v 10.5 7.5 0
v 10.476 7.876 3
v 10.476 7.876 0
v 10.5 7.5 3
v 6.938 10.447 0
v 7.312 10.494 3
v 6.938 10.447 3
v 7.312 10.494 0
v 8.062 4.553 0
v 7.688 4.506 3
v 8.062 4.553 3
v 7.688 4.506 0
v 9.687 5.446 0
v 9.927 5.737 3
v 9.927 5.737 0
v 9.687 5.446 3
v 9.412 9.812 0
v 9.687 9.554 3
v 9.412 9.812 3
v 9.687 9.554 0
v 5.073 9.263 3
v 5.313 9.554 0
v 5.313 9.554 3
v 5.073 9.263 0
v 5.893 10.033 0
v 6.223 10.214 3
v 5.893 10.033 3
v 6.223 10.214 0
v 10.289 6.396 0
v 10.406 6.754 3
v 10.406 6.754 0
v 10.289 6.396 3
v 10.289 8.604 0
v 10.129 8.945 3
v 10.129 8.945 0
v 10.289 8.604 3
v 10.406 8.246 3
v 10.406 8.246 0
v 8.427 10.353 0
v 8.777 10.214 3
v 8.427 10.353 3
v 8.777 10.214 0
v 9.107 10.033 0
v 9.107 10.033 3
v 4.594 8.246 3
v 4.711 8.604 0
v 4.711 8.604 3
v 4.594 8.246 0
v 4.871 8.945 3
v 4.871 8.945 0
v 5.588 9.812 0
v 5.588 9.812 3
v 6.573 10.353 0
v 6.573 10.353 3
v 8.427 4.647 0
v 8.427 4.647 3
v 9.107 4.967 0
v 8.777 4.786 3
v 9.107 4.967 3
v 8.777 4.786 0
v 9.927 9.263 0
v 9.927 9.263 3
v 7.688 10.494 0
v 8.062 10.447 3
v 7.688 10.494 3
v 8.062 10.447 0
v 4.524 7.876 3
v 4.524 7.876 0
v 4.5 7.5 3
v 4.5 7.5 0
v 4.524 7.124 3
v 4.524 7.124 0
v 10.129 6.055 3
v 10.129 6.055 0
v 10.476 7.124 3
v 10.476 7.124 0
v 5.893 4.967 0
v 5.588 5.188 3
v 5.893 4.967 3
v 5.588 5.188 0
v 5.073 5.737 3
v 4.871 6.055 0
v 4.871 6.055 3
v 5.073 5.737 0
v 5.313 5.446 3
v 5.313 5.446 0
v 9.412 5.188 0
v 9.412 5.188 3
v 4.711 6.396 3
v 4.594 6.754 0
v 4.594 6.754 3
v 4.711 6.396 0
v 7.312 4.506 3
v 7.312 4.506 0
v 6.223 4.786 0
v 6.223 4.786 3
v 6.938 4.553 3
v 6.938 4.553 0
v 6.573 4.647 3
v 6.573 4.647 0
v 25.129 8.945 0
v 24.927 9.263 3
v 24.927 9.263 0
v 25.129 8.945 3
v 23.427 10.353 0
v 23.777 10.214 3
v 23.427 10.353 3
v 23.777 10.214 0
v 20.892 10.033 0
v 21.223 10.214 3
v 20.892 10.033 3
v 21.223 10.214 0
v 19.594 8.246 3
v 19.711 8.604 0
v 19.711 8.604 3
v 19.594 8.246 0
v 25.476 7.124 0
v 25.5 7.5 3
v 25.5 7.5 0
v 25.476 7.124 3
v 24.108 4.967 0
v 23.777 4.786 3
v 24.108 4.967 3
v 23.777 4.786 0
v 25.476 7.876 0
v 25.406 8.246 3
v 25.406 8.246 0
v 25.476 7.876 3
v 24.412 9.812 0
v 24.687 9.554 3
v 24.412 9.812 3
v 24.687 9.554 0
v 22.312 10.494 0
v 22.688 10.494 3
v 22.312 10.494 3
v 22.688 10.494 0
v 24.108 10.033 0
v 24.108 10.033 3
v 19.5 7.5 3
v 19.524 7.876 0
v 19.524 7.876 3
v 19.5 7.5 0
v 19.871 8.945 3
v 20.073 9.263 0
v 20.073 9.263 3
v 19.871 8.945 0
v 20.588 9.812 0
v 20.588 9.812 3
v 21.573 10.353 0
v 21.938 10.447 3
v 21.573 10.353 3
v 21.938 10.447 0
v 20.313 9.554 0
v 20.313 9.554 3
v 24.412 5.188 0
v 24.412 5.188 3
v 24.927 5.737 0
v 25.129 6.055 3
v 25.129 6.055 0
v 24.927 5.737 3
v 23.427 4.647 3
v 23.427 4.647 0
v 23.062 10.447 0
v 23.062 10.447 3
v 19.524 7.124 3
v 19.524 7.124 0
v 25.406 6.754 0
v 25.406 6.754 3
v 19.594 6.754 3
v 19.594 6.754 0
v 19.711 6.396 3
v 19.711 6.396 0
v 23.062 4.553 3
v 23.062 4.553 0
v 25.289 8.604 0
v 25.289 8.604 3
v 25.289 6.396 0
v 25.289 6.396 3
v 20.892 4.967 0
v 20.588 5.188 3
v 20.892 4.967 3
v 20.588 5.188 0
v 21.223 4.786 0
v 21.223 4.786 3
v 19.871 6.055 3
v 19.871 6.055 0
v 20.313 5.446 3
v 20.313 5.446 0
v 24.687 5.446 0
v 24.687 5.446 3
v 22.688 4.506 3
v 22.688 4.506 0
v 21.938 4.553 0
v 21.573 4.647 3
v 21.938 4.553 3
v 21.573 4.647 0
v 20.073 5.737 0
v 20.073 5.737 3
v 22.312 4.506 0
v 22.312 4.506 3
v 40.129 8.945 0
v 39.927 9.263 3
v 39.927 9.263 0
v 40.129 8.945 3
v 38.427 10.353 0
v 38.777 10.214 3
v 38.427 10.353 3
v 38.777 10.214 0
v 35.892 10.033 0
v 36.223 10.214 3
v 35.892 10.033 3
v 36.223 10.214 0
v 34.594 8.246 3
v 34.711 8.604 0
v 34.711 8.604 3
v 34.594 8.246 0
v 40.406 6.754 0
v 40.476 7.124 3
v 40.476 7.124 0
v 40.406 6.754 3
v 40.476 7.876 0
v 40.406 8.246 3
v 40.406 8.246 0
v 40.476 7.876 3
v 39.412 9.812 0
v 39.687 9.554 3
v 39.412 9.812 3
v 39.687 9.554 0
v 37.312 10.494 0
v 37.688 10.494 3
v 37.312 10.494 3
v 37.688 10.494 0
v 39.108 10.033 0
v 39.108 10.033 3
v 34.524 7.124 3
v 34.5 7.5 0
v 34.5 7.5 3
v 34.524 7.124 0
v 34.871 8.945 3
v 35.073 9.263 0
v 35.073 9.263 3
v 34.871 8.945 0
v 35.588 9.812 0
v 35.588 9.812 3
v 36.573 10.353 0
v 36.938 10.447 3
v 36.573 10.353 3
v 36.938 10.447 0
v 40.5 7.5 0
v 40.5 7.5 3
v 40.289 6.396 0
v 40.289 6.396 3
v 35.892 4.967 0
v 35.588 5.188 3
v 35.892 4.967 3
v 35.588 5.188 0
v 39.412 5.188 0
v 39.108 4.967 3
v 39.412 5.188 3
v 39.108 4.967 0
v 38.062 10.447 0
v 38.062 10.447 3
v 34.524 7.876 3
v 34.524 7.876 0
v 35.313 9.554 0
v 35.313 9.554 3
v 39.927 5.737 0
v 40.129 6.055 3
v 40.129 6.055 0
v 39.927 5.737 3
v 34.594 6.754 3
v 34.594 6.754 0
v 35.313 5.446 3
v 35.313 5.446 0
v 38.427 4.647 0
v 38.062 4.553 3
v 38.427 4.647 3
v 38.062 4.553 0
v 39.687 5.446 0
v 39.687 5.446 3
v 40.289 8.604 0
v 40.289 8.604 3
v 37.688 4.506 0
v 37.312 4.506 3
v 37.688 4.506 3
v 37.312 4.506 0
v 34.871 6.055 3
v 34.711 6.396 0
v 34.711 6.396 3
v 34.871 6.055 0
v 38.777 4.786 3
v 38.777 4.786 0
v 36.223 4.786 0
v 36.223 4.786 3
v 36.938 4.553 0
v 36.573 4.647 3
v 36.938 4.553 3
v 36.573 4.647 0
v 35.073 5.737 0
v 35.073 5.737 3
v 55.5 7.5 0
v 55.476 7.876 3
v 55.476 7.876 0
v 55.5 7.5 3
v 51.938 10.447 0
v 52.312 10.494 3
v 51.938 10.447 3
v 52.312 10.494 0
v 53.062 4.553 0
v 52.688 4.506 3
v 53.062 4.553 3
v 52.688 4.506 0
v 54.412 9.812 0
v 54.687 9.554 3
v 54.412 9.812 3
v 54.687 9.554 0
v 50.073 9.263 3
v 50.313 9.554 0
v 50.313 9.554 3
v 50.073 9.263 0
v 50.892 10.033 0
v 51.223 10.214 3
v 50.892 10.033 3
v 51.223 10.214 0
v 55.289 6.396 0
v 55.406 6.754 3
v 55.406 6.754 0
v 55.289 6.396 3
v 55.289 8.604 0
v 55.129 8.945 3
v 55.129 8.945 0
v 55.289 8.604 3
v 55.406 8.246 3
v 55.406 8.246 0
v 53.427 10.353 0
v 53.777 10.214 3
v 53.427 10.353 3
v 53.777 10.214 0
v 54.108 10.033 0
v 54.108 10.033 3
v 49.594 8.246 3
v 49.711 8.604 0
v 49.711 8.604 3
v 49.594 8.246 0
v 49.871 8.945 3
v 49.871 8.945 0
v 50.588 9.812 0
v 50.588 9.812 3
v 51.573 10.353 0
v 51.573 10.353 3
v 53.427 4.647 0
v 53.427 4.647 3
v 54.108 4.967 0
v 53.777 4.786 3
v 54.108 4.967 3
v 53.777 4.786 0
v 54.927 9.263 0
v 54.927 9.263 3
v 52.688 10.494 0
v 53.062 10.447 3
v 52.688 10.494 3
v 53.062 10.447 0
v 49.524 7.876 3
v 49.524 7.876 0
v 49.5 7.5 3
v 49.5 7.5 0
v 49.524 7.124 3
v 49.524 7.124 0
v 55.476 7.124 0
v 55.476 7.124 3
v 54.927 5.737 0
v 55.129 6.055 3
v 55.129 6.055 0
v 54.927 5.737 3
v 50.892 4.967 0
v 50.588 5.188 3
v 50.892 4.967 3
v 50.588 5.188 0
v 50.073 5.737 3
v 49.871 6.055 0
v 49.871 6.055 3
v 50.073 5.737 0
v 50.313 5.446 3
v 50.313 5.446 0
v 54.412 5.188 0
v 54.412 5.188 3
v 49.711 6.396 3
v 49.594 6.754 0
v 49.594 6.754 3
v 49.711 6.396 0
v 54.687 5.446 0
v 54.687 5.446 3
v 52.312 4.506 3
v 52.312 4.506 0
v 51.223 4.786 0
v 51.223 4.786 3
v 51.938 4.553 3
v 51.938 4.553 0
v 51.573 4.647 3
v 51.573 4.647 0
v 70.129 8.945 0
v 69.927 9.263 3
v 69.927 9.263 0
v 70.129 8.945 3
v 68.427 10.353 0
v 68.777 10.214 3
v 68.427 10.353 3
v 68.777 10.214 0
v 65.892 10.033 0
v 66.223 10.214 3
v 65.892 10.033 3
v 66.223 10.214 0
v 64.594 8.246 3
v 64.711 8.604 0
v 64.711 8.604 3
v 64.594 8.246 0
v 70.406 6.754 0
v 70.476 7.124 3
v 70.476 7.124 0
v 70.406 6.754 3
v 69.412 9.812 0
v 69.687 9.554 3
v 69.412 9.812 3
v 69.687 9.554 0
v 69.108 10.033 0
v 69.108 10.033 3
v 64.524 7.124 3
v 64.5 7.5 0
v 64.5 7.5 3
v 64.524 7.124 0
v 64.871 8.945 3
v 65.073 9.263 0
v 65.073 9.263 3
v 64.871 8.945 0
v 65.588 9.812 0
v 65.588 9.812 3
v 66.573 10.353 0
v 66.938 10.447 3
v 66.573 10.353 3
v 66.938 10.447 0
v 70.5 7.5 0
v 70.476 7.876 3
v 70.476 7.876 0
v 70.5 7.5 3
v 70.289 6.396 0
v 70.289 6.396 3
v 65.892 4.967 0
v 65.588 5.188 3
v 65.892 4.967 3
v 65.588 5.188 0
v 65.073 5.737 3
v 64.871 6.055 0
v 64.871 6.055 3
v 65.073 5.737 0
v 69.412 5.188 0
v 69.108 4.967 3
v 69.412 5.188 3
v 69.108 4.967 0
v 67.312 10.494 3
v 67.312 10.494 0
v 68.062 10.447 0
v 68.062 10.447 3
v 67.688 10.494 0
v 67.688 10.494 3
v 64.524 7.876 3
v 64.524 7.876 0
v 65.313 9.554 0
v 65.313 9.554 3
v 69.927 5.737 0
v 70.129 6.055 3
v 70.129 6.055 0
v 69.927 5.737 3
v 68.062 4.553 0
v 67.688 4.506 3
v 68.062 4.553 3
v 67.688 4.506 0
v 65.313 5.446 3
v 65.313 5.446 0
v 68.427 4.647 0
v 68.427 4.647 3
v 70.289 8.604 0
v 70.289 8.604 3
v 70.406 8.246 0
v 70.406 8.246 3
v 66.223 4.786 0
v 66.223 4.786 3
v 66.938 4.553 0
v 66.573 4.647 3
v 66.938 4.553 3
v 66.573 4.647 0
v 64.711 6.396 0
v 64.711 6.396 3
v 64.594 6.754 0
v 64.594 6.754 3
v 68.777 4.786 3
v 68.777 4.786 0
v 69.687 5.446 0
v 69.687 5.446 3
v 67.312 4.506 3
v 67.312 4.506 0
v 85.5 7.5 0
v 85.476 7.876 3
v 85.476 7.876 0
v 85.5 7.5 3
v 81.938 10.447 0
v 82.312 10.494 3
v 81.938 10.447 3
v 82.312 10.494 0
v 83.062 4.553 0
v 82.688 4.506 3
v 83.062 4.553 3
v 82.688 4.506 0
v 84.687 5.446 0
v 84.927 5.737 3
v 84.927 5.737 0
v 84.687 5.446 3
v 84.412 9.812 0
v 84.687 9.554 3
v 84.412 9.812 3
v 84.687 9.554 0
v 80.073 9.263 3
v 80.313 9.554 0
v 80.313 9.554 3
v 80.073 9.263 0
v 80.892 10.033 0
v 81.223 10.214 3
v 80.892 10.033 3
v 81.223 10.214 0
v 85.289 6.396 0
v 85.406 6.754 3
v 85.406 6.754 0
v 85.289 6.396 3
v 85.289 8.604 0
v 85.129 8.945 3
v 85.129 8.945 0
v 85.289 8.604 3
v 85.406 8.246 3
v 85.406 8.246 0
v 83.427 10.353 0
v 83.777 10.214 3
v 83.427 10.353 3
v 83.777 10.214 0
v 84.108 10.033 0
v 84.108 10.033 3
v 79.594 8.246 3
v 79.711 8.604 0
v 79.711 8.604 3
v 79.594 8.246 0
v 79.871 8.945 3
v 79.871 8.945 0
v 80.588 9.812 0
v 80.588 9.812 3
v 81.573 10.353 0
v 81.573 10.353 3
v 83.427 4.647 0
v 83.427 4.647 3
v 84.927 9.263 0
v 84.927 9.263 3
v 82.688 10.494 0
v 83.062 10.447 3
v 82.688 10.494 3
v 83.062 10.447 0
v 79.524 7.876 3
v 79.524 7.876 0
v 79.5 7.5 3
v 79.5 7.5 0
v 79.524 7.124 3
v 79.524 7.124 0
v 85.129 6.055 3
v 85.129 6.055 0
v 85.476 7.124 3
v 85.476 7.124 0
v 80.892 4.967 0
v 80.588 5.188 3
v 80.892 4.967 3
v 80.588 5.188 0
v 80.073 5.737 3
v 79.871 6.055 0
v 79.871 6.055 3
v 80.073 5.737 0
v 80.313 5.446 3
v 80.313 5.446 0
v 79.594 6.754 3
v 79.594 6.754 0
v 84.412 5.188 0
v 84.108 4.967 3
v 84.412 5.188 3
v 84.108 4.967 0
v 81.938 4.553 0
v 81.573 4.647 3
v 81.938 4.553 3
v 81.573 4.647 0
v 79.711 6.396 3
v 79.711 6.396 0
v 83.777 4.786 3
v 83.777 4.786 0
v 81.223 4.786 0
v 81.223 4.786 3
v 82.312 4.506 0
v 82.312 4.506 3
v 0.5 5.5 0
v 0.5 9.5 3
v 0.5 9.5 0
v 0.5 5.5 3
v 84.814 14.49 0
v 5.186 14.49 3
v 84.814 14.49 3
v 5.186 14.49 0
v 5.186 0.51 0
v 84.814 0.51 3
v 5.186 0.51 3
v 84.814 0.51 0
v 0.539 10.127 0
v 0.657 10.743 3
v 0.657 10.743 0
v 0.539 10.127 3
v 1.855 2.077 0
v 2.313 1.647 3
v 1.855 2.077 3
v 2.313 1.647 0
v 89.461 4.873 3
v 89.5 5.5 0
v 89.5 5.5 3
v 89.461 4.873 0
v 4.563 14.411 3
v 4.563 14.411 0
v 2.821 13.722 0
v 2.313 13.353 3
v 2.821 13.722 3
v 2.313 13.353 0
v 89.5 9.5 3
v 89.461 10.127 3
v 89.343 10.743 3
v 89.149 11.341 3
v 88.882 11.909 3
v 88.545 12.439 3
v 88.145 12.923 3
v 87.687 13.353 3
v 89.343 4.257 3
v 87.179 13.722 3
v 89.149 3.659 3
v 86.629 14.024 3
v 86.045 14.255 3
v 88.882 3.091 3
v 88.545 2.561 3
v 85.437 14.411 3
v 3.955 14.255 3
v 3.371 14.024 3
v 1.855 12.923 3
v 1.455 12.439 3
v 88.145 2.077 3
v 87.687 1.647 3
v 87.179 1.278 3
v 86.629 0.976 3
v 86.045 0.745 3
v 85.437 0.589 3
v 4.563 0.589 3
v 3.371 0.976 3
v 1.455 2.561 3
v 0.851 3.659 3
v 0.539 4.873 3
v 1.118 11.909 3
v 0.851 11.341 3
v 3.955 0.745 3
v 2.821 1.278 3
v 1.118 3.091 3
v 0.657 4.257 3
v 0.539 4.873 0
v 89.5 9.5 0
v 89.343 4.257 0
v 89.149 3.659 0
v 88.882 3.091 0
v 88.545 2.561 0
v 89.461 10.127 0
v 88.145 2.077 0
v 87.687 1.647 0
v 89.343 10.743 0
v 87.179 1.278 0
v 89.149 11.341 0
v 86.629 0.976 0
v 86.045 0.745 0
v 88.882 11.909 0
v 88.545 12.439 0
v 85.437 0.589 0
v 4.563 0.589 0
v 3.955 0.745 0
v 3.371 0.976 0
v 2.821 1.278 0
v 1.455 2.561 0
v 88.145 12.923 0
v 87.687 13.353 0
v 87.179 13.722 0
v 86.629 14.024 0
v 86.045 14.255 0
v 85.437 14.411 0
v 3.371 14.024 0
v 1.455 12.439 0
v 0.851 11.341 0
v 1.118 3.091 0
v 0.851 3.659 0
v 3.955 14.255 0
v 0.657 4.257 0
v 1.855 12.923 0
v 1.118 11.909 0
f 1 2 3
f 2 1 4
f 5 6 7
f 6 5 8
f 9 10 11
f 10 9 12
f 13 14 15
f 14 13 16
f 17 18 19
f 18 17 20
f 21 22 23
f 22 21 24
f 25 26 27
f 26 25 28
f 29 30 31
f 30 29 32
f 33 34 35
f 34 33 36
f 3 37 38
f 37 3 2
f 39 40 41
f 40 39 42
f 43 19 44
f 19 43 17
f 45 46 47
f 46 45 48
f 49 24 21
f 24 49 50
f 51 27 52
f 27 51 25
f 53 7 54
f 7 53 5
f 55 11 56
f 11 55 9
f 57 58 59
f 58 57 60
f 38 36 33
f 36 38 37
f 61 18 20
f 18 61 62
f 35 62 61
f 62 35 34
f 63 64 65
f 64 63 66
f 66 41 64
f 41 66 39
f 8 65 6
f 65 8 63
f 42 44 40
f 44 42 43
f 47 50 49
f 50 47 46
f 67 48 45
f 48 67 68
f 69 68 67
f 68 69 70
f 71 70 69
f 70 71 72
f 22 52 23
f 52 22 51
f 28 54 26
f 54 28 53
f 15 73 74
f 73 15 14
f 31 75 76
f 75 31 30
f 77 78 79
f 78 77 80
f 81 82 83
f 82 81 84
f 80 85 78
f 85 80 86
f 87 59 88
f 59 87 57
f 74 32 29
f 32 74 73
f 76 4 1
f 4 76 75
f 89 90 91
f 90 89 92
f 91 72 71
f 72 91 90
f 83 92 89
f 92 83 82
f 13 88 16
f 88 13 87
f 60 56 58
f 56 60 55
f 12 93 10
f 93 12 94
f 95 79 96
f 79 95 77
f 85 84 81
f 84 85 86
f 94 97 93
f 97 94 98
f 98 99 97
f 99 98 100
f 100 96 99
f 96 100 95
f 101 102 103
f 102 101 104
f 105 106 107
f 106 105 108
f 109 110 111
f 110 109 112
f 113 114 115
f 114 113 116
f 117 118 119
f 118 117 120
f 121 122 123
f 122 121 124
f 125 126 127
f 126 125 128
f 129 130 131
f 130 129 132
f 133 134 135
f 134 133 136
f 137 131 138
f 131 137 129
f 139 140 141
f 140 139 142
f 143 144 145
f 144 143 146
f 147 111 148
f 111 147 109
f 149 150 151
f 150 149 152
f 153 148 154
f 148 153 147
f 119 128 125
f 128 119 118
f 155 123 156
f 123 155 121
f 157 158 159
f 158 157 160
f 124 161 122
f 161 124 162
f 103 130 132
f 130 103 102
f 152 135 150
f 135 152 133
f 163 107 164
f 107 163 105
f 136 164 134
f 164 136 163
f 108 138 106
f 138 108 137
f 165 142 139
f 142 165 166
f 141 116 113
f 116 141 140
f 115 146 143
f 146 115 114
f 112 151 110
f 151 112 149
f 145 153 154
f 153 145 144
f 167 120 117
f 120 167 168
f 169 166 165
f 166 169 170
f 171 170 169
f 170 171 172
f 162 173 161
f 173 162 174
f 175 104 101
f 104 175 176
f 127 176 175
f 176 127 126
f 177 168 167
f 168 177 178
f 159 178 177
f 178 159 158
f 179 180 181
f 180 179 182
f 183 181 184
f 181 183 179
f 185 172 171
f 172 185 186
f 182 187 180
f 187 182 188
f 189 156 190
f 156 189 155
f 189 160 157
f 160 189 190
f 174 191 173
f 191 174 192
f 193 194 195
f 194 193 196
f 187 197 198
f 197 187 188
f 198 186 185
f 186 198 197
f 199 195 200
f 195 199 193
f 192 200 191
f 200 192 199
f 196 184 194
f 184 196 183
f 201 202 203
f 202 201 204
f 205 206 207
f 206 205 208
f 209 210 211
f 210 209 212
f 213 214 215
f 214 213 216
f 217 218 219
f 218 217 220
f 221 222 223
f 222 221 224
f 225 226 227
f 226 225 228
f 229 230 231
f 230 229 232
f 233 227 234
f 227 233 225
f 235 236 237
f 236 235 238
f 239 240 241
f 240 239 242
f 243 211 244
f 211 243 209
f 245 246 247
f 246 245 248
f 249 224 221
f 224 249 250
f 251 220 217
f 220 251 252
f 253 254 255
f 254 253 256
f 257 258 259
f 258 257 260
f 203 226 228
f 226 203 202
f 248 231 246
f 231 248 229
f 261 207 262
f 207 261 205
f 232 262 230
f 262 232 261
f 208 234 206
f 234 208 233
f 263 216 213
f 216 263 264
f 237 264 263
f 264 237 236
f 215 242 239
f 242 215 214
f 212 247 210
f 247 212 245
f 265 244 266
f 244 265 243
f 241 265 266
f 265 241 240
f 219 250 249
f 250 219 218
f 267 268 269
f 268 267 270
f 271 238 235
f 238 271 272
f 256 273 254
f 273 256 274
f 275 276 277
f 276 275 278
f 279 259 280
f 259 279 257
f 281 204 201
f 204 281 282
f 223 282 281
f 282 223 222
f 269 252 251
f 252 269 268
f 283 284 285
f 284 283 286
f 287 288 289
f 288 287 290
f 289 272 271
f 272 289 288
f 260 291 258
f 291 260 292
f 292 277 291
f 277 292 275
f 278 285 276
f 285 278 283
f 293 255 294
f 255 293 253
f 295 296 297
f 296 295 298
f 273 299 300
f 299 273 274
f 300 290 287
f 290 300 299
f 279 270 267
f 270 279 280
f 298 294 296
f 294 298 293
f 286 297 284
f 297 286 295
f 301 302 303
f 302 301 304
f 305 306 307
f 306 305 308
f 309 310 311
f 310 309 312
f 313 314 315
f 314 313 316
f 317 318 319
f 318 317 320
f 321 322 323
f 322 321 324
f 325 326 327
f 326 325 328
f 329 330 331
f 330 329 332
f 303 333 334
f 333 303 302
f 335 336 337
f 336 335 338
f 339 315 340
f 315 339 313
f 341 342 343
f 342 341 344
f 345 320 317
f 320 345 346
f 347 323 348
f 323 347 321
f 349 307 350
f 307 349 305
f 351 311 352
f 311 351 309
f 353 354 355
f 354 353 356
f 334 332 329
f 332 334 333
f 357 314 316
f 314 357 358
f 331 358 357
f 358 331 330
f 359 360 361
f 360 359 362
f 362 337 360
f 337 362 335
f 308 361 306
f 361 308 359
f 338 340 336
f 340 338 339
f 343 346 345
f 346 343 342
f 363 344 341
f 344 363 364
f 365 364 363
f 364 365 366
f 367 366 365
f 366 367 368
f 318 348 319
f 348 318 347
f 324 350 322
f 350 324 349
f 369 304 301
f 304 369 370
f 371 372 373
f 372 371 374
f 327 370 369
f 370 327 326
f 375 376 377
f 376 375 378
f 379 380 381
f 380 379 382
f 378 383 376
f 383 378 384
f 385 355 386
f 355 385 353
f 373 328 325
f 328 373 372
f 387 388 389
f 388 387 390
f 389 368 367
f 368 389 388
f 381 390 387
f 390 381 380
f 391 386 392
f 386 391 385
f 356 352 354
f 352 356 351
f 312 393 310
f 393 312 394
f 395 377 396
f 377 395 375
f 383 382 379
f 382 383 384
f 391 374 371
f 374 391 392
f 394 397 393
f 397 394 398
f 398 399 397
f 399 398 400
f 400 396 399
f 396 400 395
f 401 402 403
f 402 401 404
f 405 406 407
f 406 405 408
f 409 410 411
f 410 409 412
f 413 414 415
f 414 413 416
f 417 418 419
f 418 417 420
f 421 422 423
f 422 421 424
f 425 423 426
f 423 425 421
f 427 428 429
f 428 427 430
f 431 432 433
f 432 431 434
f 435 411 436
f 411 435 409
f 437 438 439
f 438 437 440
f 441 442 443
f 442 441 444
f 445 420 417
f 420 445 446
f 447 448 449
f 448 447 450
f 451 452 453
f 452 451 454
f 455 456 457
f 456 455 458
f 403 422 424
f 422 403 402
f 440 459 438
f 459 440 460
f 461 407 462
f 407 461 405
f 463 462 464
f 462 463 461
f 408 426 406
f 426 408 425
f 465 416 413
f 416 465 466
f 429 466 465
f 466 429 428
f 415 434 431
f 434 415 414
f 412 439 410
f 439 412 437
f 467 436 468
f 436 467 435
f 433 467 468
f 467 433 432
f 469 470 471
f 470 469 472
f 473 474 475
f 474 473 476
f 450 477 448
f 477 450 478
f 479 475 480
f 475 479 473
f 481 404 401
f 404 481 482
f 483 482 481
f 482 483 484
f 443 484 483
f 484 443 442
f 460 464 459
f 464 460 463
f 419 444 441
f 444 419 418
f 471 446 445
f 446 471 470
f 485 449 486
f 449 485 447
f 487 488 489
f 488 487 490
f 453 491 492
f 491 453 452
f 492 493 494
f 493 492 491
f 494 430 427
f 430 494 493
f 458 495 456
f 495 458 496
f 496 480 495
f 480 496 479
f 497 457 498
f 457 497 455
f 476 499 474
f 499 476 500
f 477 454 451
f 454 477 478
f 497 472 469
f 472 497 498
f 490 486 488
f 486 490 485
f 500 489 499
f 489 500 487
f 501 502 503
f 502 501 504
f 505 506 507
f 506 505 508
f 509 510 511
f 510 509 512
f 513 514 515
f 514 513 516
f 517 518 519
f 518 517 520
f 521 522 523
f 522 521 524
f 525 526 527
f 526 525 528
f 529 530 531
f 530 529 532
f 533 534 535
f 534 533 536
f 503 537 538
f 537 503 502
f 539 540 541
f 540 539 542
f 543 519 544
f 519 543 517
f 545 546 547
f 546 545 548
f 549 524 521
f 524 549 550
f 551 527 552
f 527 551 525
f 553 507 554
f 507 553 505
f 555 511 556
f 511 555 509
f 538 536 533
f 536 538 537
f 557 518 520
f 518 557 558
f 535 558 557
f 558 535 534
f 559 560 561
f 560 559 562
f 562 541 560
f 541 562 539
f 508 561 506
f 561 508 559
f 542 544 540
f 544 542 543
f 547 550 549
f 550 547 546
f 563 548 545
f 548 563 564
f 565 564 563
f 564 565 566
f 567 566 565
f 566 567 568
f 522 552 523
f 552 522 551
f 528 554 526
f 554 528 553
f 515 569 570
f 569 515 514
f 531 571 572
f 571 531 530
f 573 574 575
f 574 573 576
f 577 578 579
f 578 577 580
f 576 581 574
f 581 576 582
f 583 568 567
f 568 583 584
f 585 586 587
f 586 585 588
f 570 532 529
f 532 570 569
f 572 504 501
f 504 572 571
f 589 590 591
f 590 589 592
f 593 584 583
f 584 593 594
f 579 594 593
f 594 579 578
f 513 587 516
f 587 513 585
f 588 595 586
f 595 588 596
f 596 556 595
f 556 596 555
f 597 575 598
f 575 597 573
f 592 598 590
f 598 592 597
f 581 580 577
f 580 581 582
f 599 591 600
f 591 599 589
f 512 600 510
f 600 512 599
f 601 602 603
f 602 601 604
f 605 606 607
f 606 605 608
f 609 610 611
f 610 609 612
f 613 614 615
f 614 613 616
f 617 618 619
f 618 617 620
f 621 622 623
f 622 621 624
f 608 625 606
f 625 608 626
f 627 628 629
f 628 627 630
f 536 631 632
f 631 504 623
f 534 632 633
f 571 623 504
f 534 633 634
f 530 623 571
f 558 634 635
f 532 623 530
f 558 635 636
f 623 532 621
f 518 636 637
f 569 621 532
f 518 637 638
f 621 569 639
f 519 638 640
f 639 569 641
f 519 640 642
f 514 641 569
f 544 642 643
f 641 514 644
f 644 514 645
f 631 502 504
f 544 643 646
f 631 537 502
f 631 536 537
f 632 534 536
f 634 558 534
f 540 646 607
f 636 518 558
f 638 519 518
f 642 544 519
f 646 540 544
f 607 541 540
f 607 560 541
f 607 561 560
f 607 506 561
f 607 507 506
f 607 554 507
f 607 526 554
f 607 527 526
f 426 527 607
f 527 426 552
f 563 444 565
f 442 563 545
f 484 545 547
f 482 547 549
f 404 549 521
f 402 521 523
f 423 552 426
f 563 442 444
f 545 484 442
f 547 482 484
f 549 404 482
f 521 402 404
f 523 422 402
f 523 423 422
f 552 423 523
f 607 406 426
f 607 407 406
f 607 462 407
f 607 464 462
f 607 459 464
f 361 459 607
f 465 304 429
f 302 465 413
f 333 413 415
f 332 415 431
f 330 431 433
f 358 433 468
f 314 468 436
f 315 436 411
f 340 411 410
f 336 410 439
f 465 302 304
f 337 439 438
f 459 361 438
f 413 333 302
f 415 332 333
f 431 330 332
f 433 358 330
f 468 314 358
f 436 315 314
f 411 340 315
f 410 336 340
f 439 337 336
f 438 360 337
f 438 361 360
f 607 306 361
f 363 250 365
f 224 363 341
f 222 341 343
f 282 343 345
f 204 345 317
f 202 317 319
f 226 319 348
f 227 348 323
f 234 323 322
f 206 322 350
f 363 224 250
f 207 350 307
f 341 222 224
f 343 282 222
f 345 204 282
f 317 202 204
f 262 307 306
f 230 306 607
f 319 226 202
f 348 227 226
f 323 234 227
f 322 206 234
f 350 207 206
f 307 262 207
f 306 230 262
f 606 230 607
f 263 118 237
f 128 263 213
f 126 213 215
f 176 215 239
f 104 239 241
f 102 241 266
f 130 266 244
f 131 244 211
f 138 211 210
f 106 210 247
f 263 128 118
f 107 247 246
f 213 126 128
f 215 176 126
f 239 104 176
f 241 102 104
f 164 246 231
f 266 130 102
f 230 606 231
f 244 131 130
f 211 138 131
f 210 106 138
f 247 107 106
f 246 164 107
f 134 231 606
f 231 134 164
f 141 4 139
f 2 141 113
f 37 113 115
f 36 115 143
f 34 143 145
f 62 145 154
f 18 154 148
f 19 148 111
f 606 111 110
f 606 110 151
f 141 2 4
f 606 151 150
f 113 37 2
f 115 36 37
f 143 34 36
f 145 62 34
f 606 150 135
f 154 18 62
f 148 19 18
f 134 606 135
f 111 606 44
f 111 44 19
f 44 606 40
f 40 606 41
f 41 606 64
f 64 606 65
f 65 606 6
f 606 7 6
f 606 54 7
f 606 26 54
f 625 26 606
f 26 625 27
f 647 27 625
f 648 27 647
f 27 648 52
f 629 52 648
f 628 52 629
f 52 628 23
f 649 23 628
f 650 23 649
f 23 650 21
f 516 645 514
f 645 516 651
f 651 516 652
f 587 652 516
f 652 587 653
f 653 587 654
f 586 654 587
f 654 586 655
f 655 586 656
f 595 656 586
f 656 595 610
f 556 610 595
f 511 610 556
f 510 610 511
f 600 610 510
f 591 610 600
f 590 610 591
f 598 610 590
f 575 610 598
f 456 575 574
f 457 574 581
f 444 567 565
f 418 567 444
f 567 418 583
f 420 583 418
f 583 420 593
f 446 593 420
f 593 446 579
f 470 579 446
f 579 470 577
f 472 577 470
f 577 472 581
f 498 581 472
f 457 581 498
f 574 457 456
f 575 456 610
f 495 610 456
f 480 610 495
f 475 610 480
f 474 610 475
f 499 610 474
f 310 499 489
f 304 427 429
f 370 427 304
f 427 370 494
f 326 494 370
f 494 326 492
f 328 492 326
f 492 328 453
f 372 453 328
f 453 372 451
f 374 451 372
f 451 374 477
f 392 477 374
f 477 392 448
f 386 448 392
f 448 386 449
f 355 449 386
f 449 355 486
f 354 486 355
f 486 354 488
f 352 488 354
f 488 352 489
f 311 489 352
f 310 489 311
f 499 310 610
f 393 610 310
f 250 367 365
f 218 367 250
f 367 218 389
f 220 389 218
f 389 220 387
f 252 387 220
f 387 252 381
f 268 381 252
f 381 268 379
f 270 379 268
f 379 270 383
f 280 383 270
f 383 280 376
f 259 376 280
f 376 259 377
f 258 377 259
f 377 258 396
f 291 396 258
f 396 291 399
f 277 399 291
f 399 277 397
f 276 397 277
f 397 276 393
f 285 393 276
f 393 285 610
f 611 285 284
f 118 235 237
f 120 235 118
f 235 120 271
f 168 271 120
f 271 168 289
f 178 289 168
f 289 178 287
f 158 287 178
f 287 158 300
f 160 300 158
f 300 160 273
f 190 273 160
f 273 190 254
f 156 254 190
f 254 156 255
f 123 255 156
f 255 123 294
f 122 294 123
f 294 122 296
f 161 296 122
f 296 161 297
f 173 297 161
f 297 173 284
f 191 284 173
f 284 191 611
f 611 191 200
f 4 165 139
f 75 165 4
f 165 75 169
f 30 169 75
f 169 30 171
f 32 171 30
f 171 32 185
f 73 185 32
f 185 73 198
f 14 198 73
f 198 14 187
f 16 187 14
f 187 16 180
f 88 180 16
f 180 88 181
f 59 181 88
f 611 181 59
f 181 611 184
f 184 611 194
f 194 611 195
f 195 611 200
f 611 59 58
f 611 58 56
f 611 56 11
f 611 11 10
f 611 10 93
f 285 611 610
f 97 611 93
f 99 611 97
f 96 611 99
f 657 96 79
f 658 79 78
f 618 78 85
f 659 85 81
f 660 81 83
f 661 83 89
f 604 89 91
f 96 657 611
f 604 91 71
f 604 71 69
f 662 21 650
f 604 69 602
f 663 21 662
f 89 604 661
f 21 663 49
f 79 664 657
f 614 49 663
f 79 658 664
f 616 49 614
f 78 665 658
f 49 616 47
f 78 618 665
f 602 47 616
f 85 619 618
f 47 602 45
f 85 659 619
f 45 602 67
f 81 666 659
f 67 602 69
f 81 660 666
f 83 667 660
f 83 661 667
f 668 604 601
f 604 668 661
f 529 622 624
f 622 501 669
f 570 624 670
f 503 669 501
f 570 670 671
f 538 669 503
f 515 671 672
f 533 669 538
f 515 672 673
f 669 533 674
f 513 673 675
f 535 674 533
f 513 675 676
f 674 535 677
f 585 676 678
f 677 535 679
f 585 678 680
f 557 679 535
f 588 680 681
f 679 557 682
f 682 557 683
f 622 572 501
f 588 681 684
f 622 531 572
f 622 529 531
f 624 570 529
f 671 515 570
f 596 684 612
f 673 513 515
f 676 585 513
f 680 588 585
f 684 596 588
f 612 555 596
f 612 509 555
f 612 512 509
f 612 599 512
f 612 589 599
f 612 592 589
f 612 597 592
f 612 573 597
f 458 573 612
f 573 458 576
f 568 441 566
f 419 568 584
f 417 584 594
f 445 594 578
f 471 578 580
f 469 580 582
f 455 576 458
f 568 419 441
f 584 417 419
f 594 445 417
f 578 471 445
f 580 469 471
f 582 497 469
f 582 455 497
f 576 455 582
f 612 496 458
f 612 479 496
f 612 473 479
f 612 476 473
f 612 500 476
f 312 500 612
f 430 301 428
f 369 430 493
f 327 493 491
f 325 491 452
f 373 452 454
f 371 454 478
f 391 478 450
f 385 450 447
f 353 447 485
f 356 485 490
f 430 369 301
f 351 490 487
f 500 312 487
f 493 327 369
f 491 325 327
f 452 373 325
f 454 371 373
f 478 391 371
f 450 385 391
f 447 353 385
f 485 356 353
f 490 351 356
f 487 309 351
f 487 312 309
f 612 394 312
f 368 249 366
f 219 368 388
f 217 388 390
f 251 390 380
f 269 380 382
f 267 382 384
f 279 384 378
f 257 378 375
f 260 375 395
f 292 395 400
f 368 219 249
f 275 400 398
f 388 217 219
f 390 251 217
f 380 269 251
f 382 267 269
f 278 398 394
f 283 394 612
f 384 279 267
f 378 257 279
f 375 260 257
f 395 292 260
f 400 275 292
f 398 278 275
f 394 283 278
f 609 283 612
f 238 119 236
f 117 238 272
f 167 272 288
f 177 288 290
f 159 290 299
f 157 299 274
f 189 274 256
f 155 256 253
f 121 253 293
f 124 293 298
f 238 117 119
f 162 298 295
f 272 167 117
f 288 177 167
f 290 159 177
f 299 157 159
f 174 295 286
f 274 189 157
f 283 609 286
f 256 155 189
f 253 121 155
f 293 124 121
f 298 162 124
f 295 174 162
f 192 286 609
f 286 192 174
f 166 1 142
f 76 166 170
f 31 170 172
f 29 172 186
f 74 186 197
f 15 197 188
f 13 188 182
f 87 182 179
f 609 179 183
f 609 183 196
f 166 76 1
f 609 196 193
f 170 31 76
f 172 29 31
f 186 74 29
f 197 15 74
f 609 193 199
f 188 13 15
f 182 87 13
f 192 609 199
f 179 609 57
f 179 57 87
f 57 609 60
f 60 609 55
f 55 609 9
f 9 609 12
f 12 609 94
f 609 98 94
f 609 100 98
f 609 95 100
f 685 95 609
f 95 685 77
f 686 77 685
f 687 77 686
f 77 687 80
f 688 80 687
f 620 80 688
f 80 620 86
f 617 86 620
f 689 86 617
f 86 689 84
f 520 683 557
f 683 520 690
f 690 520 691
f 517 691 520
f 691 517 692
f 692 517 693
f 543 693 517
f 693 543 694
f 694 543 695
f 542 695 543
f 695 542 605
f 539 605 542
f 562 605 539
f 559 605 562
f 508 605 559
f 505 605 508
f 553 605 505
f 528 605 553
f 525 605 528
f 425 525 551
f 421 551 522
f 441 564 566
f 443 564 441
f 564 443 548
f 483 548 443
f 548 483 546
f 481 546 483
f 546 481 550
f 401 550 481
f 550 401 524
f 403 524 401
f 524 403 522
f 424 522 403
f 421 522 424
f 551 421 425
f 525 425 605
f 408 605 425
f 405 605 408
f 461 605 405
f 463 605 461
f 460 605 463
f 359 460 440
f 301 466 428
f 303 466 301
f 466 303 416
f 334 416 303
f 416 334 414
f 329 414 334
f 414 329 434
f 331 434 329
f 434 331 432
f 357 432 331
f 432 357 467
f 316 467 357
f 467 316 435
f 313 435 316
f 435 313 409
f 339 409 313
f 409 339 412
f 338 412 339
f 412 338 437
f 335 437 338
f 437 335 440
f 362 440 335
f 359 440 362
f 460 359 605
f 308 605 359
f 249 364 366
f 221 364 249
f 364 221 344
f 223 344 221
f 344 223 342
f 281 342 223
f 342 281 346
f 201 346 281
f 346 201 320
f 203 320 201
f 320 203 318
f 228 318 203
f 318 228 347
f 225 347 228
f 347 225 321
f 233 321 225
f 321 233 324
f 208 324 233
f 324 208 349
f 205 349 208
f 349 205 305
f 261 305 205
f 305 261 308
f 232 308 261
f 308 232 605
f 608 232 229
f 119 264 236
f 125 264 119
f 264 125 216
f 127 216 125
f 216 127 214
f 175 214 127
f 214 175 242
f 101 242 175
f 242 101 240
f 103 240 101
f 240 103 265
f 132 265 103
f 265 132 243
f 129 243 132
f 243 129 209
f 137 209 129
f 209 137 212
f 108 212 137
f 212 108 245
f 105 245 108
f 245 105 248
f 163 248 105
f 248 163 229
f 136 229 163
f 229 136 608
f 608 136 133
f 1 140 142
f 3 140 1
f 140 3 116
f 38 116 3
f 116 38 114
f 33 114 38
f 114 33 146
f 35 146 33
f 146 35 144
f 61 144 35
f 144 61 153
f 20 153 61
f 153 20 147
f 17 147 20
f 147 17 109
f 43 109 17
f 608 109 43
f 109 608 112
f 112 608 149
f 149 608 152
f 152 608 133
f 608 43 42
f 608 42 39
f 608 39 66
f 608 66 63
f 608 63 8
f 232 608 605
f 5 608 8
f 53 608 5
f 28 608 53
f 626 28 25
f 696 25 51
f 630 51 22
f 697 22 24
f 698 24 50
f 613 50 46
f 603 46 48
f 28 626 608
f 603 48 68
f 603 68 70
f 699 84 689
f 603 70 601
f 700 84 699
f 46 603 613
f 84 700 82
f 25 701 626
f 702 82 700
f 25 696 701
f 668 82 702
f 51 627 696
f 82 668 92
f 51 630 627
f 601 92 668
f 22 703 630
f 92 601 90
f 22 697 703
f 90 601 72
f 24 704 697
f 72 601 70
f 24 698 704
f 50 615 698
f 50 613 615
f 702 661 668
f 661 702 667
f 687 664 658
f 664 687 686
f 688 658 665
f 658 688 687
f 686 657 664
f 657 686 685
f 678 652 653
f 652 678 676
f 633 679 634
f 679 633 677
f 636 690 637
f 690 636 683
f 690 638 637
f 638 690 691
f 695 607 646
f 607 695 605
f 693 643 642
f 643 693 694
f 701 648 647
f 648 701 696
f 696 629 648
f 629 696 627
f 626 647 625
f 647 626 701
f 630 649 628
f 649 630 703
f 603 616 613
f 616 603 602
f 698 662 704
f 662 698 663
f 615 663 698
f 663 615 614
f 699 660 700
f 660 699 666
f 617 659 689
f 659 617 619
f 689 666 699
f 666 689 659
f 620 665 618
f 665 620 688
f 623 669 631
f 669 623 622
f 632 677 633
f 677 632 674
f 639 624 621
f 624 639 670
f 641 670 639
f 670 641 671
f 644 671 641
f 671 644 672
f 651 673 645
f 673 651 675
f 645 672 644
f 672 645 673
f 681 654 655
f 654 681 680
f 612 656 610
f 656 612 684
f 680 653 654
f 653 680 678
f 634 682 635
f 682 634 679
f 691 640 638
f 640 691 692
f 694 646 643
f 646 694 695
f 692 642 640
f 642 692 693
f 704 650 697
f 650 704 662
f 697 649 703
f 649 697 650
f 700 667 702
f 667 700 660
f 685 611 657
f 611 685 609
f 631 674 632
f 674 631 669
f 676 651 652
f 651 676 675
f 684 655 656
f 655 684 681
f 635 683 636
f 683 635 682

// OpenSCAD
// Generated by SolidPython 1.1.3 on 2023-01-30 13:47:54
$fn = 50;


difference() {
	union() {
		translate(v = [45.0000000000, 7.5000000000, 0]) {
			rotate(a = [0, 0, 0]) {
				hull() {
					translate(v = [-39.5000000000, 2.0000000000, 0]) {
						rotate(a = [0, 0, 0]) {
							translate(v = [0, 0, 0]) {
								rotate(a = [0, 0, 0]) {
									cylinder(h = 3, r = 5);
								}
							}
						}
					}
					translate(v = [39.5000000000, 2.0000000000, 0]) {
						rotate(a = [0, 0, 0]) {
							translate(v = [0, 0, 0]) {
								rotate(a = [0, 0, 0]) {
									cylinder(h = 3, r = 5);
								}
							}
						}
					}
					translate(v = [-39.5000000000, -2.0000000000, 0]) {
						rotate(a = [0, 0, 0]) {
							translate(v = [0, 0, 0]) {
								rotate(a = [0, 0, 0]) {
									cylinder(h = 3, r = 5);
								}
							}
						}
					}
					translate(v = [39.5000000000, -2.0000000000, 0]) {
						rotate(a = [0, 0, 0]) {
							translate(v = [0, 0, 0]) {
								rotate(a = [0, 0, 0]) {
									cylinder(h = 3, r = 5);
								}
							}
						}
					}
				}
			}
		}
	}
	union() {
		translate(v = [7.5000000000, 7.5000000000, 0]) {
			rotate(a = [0, 0, 0]) {
				translate(v = [0, 0, -50]) {
					rotate(a = [0, 0, 0]) {
						cylinder(h = 100, r = 3.0000000000);
					}
				}
			}
		}
		translate(v = [22.5000000000, 7.5000000000, 0]) {
			rotate(a = [0, 0, 0]) {
				translate(v = [0, 0, -50]) {
					rotate(a = [0, 0, 0]) {
						cylinder(h = 100, r = 3.0000000000);
					}
				}
			}
		}
		translate(v = [37.5000000000, 7.5000000000, 0]) {
			rotate(a = [0, 0, 0]) {
				translate(v = [0, 0, -50]) {
					rotate(a = [0, 0, 0]) {
						cylinder(h = 100, r = 3.0000000000);
					}
				}
			}
		}
		translate(v = [52.5000000000, 7.5000000000, 0]) {
			rotate(a = [0, 0, 0]) {
				translate(v = [0, 0, -50]) {
					rotate(a = [0, 0, 0]) {
						cylinder(h = 100, r = 3.0000000000);
					}
				}
			}
		}
		translate(v = [67.5000000000, 7.5000000000, 0]) {
			rotate(a = [0, 0, 0]) {
				translate(v = [0, 0, -50]) {
					rotate(a = [0, 0, 0]) {
						cylinder(h = 100, r = 3.0000000000);
					}
				}
			}
		}
		translate(v = [82.5000000000, 7.5000000000, 0]) {
			rotate(a = [0, 0, 0]) {
				translate(v = [0, 0, -50]) {
					rotate(a = [0, 0, 0]) {
						cylinder(h = 100, r = 3.0000000000);
					}
				}
			}
		}
	}
}
/***********************************************
*********      SolidPython code:      **********
************************************************
 
from solid import *
import os
import subprocess

import oomB

import opsc_library_gen

mode = "laser"
#mode = "3d_print"

defined_objects = {}

radius_dict = {}
countersunk_dict = {}


def set_mode(m):
    global mode
    mode = m
    radius_dict['M6'] = 6.5/2
    radius_dict['M3'] = 3.3/2
    if mode == "laser":
        radius_dict['M6'] = 6/2
        radius_dict['M3'] = 3/2

    countersunk_dict['M3'] = {}
    countersunk_dict['M3']['little_rad'] = radius_dict['M3']
    countersunk_dict['M3']['big_rad'] = (5.5+0.6)/2
    if mode == "laser":
        countersunk_dict['M3']['big_rad'] = (4.75+0.6)/2
        countersunk_dict['M3']['little_rad'] = (4.75+0.6)/2

    countersunk_dict['M3']['height'] = 1.7


def opsc_make_object(filename, objects, save_type="none",resolution=50, layers = 1, tilediff = 200, mode="laser"):
    set_mode(mode)
    save_type = save_type.lower()
    os.makedirs(os.path.dirname(filename), exist_ok=True)
    final_object = opsc_get_object(objects)
    # Save the final object to the specified filename    
    scad_render_to_file(final_object, filename, file_header='$fn = %s;' % resolution, include_orig_code=True)
    if mode == "laser":
        filename_laser = filename.replace(".scad","-flat.scad")
        scad_render_to_file(getLaser(final_object, layers=layers, tilediff=tilediff), filename_laser, file_header='$fn = %s;' % resolution, include_orig_code=True)
        if save_type == "all":
            saveToAll(filename_laser)
        elif save_type == "dxf":
            saveToDxf(filename_laser)
    if save_type == "all":
        saveToAll(filename)
    elif save_type == "dxf":
        saveToDxf(filename)


def opsc_get_object(objects):
    # Create the solidpython objects
    positive_objects = [get_opsc_item(obj) for obj in objects if obj['type'] == 'positive']
    negative_objects = [get_opsc_item(obj) for obj in objects if obj['type'] == 'negative']
    # Union the positive objects
    positive_object = union()(*positive_objects)
    # Union the negative objects
    negative_object = union()(*negative_objects)
    # Create the final object by subtracting the negative objects from the positive objects
    return difference()(positive_object, negative_object)

def get_opsc_item(params):
    # A dictionary to map radius string values to numerical values
    #radius_dict = {'small': 5, 'medium': 10, 'large': 15}
    # An array of function names for basic shapes
    basic_shapes = ['cube', 'sphere', 'cylinder']
    
    # An array of function names for other shapes
    other_shapes = ['hole', 'slot', 'rounded_rectangle', 'countersunk']
    


    # Convert radius to r if present, and remove radius from the params dictionary
    if 'radius' in params:
        if isinstance(params['radius'], str):
            # Use the radius_dict to map the radius string value to a numerical value
            params['r'] = radius_dict[params['radius']]
        else:
            params['r'] = params['radius']
        del params['radius']
    

    # Check if the object type is a basic shape
    if params['shape'] in basic_shapes:
        # Remove shape and unexpected dictionary values
        allowed_keys = {'size', 'r', 'r1', 'r2', 'd', 'h', 'rw', 'rh', 'dw', 'dh'}
        shape_params = {k: v for k, v in params.items() if k in allowed_keys}

        # Call the corresponding function for the shape parameter, using ** notation to pass the shape_params dictionary as keyword arguments
        return get_opsc_transform(params,globals()[params['shape']](**shape_params))
    
    # If the object type is not a basic shape, check if it's a defined object or one of the other shapes
    elif params['shape'] in other_shapes:
        # Call the corresponding function for the shape parameter, passing the params dictionary as an argument
        p2 = copy.deepcopy(params)
        p2["pos"] = [0,0,0]
        return get_opsc_transform(params,globals()[params['shape']](p2))
    
    # If the object is not a basic shape or a defined object, try to import it from a .scad file
    else:
        obj = defined_objects[params['shape']]
        return get_opsc_transform(params,obj)

def get_opsc_transform(params, solid_obj):
    # Rotate the object based on the 'rot' field in the params dictionary, or the 'rotX', 'rotY', and 'rotZ' fields if 'rot' is not present
    rot = params.get('rot', [])
    if rot:
        rotX, rotY, rotZ = rot
    else:
        rotX = params.get('rotX', 0)
        rotY = params.get('rotY', 0)
        rotZ = params.get('rotZ', 0)
    solid_obj = rotate([rotX, rotY, rotZ])(solid_obj)

    # Translate the object based on the 'pos' field in the params dictionary, or the 'x', 'y', and 'z' fields if 'pos' is not present
    pos = params.get('pos', [])
    if pos:
        x, y, z = pos
    else:
        x = params.get('x', 0)
        y = params.get('y', 0)
        z = params.get('z', 0)
    solid_obj = translate([x, y, z])(solid_obj)
    return solid_obj


import random

def opsc_easy_array(type, shape, repeats, pos_start, shift_arr, **kwargs):
    for i in range(0,3):
        repeats.append(1)
        pos_start.append(0)
        shift_arr.append(0)
    return_objects = []

    for x in range(0,repeats[0]):
        for y in range(0,repeats[1]):
            for z in range(0,repeats[2]):
                return_objects.append(opsc_easy(type, shape, pos=[pos_start[0]+x*shift_arr[0],pos_start[1]+y*shift_arr[1],pos_start[2]+z*shift_arr[2]], **kwargs))
    return return_objects                



def opsc_easy(type, shape, **kwargs):
    obj = {
        'type': type,
        'shape': shape
    }
    for param in ['size', 'r', 'r1', 'r2', 'd', 'h', 'rw', 'rh', 'dw', 'dh', 'pos', 'x', 'y', 'z', 'rot', 'rotX', 'rotY', 'rotZ', "w"]:
        if param in kwargs:
            obj[param] = kwargs[param]
    return obj

def hole(params):
    p2 = copy.deepcopy(params)  
    # Check if the radius is a string and replace it with the corresponding value from the dictionary
    if isinstance(p2['r'], str):
        p2['r'] = radius_dict[p2['r']]
    
    # Set the height to 100 if not specified
    if 'h' not in p2:
        p2['h'] = 100
        p2["pos"] = [0,0,-50]
    p2["center"] = True
    # Create the cylinder object
    p2["shape"] = "cylinder"
    p2["type"] = "positive"

    return get_opsc_item(p2)

import copy

def countersunk(params):
    p2 = copy.deepcopy(params)
    counter_rad = p2['r']
    p2['r'] = radius_dict[p2['r']]
    hp = copy.deepcopy(p2)
    hp["type"] = "positive"
    hp["shape"] = "hole"
    del hp["rot"]
    hol = get_opsc_item(hp)
    
    cp = copy.deepcopy(p2)
    cp["h"] = countersunk_dict[counter_rad]["height"]
    cp["r2"] = countersunk_dict[counter_rad]["little_rad"]
    cp["r1"] = countersunk_dict[counter_rad]["big_rad"]
    del cp["r"]
    del cp["rot"]
    cp["type"] = "positive"
    cp["shape"] = "cylinder"
    cp["pos"] = [0,0,0]

    top = get_opsc_item(cp)
    return union()(hol,top)



def slot(params):  
    p2 = copy.deepcopy(params) 
    if isinstance(p2['r'], str):
        p2['r'] = radius_dict[p2['r']]
    p2["type"] = "positive"
    p2["shape"] = "hole"
    del p2["rot"]
    p2["pos"] = [0,0,0]
    left = copy.deepcopy(p2)
    right = copy.deepcopy(p2)
    left["pos"][0] = p2["w"] / 2 - p2["r"] 
    
    right["pos"][0] = -p2["w"] / 2 + p2["r"] 
    pass
    leftObj = get_opsc_item(left)
    rightObj = get_opsc_item(right)
    return hull()(leftObj, rightObj)

def rounded_rectangle(params):   
    p2 = copy.deepcopy(params) 
    p2["h"] = p2["size"][2]
    p2["pos"] = p2.get("pos", [0, 0, 0]) 
    p2["type"] = "positive"
    p2["shape"] = "hole"
    p2["pos"] = [0,0,0]
    
    if 'rot' in p2:
        del p2["rot"]   
    if 'r' not in p2:
        p2["r"] = 5 
    tl = copy.deepcopy(p2)
    tr = copy.deepcopy(p2)
    bl = copy.deepcopy(p2)
    br = copy.deepcopy(p2)
    tl["pos"][0] = -(p2["size"][0] - p2["r"]*2)/2
    tl["pos"][1] = (p2["size"][1] - p2["r"]*2)/2
    tr["pos"][0] = (p2["size"][0] - p2["r"]*2)/2
    tr["pos"][1] = (p2["size"][1] - p2["r"]*2)/2
    bl["pos"][0] = -(p2["size"][0] - p2["r"]*2)/2
    bl["pos"][1] = -(p2["size"][1] - p2["r"]*2)/2
    br["pos"][0] = (p2["size"][0] - p2["r"]*2)/2
    br["pos"][1] = -(p2["size"][1] - p2["r"]*2)/2
    del tl["size"]
    del tr["size"]
    del bl["size"]
    del br["size"]
    tlo = get_opsc_item(tl)
    tro = get_opsc_item(tr)
    blo = get_opsc_item(bl)
    bro = get_opsc_item(br)    
    return hull()(tlo, tro, blo, bro)



def import_scad_object(filename):
    # Import the .scad file and convert it to a solidpython object
    #filename = "parts"
    obj = import_scad(filename)
    return obj.main()
    


import os
import solid as solidpython

# A dictionary to store the defined objects


def load_scad_objects():
    opsc_library_gen.gen_library(defined_objects)

import random

def test(num_objects):
    objects = []
    for i in range(num_objects):
        # Choose a random shape
        #shape = random.choice(['cube', 'sphere', 'cylinder', 'hole', 'slot', "rounded_rectangle"])
        shape = random.choice(["rounded_rectangle"])

        # Choose a random type
        type = random.choice(['positive', 'negative'])
        
        # Create an empty object dictionary
        obj = {'shape': shape, 'type': type}
        
        # Set shape-specific parameters
        if obj['shape'] in ['cube']:
            obj['size'] =  [random.uniform(5, 15), random.uniform(5, 15), random.uniform(5, 15)]
        if obj['shape'] in ['rounded_rectangle']:
            obj['size'] =  [random.uniform(5, 15), random.uniform(5, 15), random.uniform(5, 15)]
            obj['r'] = random.uniform(0.5, 5)
        elif obj['shape'] == 'sphere':
            obj['r'] = random.uniform(5, 15)
        elif obj['shape'] in ['cylinder', 'hole']:
            obj['r'] = random.uniform(0.5, 5)
            obj['h'] = random.uniform(5, 15)
        elif obj['shape'] == 'slot':
            obj['r'] = random.uniform(0.5, 5)
            obj['h'] = random.uniform(5, 15)
            obj['w'] = random.uniform(5, 15)
        
        # Set a random position and rotation
        obj['pos'] = [random.uniform(-20, 20), random.uniform(-20, 20), random.uniform(-20, 20)]
        obj['rot'] = [random.uniform(-180, 180), random.uniform(-180, 180), random.uniform(-180, 180)]
        
        # Add the object to the list
        objects.append(obj)
    return objects

####### old file saving
def saveToAll(fileIn):
    saveToDxf(fileIn)
    saveToPng(fileIn)
    saveToStl(fileIn)
    saveToSvg(fileIn)

def saveToDxf(fileIn, fileOut="", copy_to_laser=True):
    if fileOut == "":
        fileOut = fileIn.replace(".scad",".dxf")
    saveToFile(fileIn, fileOut)


    
def saveToPng(fileIn, fileOut="",extra="--render"):
    if fileOut == "":
        fileOut = fileIn.replace(".scad",".png")
    saveToFile(fileIn, fileOut)

def saveToStl(fileIn, fileOut=""):
    if fileOut == "":
        fileOut = fileIn.replace(".scad",".stl")
    saveToFile(fileIn, fileOut)
    
def saveToSvg(fileIn, fileOut=""):
    if fileOut == "":
        fileOut = fileIn.replace(".scad",".svg")
    saveToFile(fileIn, fileOut)

def saveToFile(fileIn, fileOut,extra=""):
    #extra = extra + " --colorscheme Tomorrow"

    launchStr = 'openscad -o "' + fileOut + '"' + extra + ' "' + fileIn + '"'
    if ".png" in fileOut:
        launchStr = launchStr + " --render"
    print("            saveToFile launch string: " + launchStr)
    subprocess.run(launchStr)
    x=0

def getLaser(final_object,start=1.5,layers=1,thickness=3,tilediff=200):
        rv= []

        for x in range(layers):
            rv.append(translate([0,x*tilediff,0])(
                    projection()(
                        intersection()(translate([-500,-500,start+x*thickness])(cube(size=[1000,1000,0.1])),
                            final_object
                        )
                    )
            )
            )
            
        return union()(rv)

set_mode("laser")
load_scad_objects() 
 
************************************************/
